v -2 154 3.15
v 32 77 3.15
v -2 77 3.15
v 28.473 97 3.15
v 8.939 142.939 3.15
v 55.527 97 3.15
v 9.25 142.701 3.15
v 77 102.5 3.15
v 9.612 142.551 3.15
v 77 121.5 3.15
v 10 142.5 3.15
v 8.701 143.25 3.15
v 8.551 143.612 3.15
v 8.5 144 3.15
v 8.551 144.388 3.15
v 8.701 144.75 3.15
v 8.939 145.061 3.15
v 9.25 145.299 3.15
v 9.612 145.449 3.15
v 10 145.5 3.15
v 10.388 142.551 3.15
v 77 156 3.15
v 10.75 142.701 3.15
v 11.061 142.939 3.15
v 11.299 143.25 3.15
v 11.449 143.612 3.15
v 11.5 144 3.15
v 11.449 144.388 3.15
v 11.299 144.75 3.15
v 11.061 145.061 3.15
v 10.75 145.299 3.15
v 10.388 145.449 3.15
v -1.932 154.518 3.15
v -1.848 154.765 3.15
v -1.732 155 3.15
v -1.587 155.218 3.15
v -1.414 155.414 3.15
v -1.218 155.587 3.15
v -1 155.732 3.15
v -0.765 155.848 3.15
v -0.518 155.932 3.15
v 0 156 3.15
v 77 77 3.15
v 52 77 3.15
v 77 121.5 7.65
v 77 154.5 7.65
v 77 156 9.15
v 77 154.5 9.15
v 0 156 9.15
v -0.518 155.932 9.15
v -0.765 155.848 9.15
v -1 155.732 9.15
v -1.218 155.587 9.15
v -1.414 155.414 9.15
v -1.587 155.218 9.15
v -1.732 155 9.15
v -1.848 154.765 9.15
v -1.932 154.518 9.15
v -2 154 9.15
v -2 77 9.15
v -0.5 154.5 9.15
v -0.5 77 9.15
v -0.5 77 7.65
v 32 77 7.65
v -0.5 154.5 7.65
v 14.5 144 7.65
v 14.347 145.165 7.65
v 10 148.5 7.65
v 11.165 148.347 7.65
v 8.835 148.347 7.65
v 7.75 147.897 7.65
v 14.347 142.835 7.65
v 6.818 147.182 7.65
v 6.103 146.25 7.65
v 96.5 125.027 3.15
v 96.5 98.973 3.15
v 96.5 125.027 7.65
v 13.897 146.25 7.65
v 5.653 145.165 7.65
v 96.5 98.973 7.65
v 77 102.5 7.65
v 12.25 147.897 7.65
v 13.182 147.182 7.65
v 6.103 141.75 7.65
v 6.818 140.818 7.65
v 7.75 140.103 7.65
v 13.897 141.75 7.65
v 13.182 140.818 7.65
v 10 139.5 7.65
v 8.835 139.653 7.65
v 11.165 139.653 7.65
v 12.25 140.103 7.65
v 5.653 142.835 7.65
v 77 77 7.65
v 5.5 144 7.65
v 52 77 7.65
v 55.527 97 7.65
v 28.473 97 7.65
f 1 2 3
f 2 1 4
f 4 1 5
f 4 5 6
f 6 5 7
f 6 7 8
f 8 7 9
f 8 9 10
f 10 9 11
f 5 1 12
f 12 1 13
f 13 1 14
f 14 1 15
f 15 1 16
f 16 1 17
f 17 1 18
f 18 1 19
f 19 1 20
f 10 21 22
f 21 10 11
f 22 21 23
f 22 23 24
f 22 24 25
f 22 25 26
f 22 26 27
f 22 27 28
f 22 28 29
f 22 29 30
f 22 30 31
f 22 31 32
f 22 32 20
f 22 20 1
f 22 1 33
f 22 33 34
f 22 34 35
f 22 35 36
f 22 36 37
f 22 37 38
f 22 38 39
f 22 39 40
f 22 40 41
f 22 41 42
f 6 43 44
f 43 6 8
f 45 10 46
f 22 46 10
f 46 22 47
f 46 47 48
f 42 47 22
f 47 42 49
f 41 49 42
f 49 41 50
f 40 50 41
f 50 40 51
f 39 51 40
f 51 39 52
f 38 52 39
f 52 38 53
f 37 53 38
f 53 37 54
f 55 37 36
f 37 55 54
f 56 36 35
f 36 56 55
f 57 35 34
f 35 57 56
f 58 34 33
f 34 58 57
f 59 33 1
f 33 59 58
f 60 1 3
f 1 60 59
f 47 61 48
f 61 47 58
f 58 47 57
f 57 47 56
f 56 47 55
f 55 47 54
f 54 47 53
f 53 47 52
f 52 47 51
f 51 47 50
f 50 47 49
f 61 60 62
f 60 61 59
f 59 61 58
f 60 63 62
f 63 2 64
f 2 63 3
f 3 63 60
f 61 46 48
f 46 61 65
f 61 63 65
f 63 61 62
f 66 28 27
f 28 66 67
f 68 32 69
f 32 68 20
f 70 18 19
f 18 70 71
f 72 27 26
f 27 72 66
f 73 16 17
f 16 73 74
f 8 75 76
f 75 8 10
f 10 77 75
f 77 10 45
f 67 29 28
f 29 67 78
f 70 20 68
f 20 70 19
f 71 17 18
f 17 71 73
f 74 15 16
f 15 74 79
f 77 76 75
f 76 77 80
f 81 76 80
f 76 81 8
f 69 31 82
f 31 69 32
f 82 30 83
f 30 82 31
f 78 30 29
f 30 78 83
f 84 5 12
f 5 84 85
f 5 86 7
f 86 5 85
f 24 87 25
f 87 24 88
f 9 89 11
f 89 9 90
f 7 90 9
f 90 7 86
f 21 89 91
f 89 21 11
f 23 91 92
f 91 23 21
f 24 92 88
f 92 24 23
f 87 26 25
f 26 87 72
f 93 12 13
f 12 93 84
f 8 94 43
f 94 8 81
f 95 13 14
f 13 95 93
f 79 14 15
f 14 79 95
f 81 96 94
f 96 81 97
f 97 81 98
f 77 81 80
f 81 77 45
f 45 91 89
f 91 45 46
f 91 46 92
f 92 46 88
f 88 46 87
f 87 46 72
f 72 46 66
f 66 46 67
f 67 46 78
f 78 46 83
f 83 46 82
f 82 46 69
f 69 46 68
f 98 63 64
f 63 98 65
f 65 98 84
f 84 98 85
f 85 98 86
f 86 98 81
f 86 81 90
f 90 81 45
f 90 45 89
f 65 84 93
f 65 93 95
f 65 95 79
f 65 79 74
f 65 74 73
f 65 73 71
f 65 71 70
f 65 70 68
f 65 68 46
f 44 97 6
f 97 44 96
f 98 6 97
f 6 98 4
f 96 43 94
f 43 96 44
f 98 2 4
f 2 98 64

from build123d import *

# Parameters (mm, degrees)
BOSS_EXTRUDE1_DEPTH = 6
SKETCH2_W           = 4.5
SKETCH2_H           = 48.026539614
BOSS_EXTRUDE2_DEPTH = 19.5
SKETCH3_W           = 1.5
SKETCH3_H           = 77.5
CUT_EXTRUDE1_DEPTH  = 77.5
SKETCH4_W           = 27.053079228
SKETCH4_H           = 20
CUT_EXTRUDE2_DEPTH  = 184.532694635
SKETCH5_W           = 19.5
SKETCH5_H           = 21.973460386
CUT_EXTRUDE3_DEPTH  = 184.532694635
CUT_EXTRUDE4_DEPTH  = 4.5
CUT_EXTRUDE4_TAPER  = -33.463237765
DRAFT1_ANGLE        = -10
DRAFT2_ANGLE        = -10.251039049


with BuildPart() as part:
    # Sketch1 → Boss-Extrude1 (new body)
    with BuildSketch(Plane.XY.offset(9.15)):
        Polygon((-2, 77), (77, 77), (77, 156), (0, 156), (-0.51763809, 155.931851653), (-0.765366865, 155.847759065), (-1, 155.732050808), (-1.217522858, 155.586706681), (-1.414213562, 155.414213562), (-1.586706681, 155.217522858), (-1.732050808, 155), (-1.847759065, 154.765366865), (-1.931851653, 154.51763809), (-2, 154), align=None)
    extrude(amount=-BOSS_EXTRUDE1_DEPTH)

    # Sketch2 → Boss-Extrude2 (add)
    with BuildSketch(Plane(origin=(77, 0, 0), x_dir=(0, 0, -1), z_dir=(1, 0, 0))):
        with Locations((-5.4, 101.013269807)):
            Rectangle(SKETCH2_W, SKETCH2_H)
    extrude(amount=BOSS_EXTRUDE2_DEPTH)

    # Sketch3 → Cut-Extrude1 (cut)
    with BuildSketch(Plane(origin=(77, 0, 0), x_dir=(0, 0, -1), z_dir=(1, 0, 0))):
        with Locations((-8.4, 115.75)):
            Rectangle(SKETCH3_W, SKETCH3_H)
    extrude(amount=-CUT_EXTRUDE1_DEPTH, mode=Mode.SUBTRACT)

    # Sketch4 → Cut-Extrude2 (cut, through all)
    with BuildSketch(Plane(origin=(0, 0, 3.15), x_dir=(-1, 0, 0), z_dir=(0, 0, -1))):
        with Locations((-42, 87)):
            Rectangle(SKETCH4_W, SKETCH4_H)
    extrude(amount=-CUT_EXTRUDE2_DEPTH, mode=Mode.SUBTRACT)

    # Sketch5 → Cut-Extrude3 (cut, through all)
    with BuildSketch(Plane(origin=(0, 0, 3.15), x_dir=(-1, 0, 0), z_dir=(0, 0, -1))):
        with Locations((-86.75, 87.986730193)):
            Rectangle(SKETCH5_W, SKETCH5_H)
    extrude(amount=-CUT_EXTRUDE3_DEPTH, mode=Mode.SUBTRACT)

    # Sketch6 → Cut-Extrude4 (cut)
    with BuildSketch(Plane(origin=(0, 0, 3.15), x_dir=(-1, 0, 0), z_dir=(0, 0, -1))):
        Polygon((-11.060660172, 142.939339828), (-10.75, 142.700961894), (-10.388228568, 142.551111261), (-10, 142.5), (-9.611771432, 142.551111261), (-9.25, 142.700961894), (-8.939339828, 142.939339828), (-8.700961894, 143.25), (-8.551111261, 143.611771432), (-8.5, 144), (-8.551111261, 144.388228568), (-8.700961894, 144.75), (-8.939339828, 145.060660172), (-9.25, 145.299038106), (-9.611771432, 145.448888739), (-10, 145.5), (-10.388228568, 145.448888739), (-10.75, 145.299038106), (-11.060660172, 145.060660172), (-11.299038106, 144.75), (-11.448888739, 144.388228568), (-11.5, 144), (-11.448888739, 143.611771432), (-11.299038106, 143.25), align=None)
    extrude(amount=-CUT_EXTRUDE4_DEPTH, taper=CUT_EXTRUDE4_TAPER, mode=Mode.SUBTRACT)

    # Draft1
    draft1_faces = [part.faces().sort_by_distance(p)[0] for p in [
        (55.526539614, 87, 5.4),
        (28.473460386, 87, 5.4),
    ]]
    draft(draft1_faces, Plane(origin=(28.473460386, 97, 9.15), x_dir=(-1, 0, 0), z_dir=(0, -1, 0)), DRAFT1_ANGLE)

    # Draft2
    draft2_faces = [part.faces().sort_by_distance(p)[0] for p in [
        (86.75, 98.973460386, 5.4),
        (86.75, 125.026539614, 5.4),
    ]]
    draft(draft2_faces, Plane.YZ.offset(96.5), DRAFT2_ANGLE)


solid = part.part
